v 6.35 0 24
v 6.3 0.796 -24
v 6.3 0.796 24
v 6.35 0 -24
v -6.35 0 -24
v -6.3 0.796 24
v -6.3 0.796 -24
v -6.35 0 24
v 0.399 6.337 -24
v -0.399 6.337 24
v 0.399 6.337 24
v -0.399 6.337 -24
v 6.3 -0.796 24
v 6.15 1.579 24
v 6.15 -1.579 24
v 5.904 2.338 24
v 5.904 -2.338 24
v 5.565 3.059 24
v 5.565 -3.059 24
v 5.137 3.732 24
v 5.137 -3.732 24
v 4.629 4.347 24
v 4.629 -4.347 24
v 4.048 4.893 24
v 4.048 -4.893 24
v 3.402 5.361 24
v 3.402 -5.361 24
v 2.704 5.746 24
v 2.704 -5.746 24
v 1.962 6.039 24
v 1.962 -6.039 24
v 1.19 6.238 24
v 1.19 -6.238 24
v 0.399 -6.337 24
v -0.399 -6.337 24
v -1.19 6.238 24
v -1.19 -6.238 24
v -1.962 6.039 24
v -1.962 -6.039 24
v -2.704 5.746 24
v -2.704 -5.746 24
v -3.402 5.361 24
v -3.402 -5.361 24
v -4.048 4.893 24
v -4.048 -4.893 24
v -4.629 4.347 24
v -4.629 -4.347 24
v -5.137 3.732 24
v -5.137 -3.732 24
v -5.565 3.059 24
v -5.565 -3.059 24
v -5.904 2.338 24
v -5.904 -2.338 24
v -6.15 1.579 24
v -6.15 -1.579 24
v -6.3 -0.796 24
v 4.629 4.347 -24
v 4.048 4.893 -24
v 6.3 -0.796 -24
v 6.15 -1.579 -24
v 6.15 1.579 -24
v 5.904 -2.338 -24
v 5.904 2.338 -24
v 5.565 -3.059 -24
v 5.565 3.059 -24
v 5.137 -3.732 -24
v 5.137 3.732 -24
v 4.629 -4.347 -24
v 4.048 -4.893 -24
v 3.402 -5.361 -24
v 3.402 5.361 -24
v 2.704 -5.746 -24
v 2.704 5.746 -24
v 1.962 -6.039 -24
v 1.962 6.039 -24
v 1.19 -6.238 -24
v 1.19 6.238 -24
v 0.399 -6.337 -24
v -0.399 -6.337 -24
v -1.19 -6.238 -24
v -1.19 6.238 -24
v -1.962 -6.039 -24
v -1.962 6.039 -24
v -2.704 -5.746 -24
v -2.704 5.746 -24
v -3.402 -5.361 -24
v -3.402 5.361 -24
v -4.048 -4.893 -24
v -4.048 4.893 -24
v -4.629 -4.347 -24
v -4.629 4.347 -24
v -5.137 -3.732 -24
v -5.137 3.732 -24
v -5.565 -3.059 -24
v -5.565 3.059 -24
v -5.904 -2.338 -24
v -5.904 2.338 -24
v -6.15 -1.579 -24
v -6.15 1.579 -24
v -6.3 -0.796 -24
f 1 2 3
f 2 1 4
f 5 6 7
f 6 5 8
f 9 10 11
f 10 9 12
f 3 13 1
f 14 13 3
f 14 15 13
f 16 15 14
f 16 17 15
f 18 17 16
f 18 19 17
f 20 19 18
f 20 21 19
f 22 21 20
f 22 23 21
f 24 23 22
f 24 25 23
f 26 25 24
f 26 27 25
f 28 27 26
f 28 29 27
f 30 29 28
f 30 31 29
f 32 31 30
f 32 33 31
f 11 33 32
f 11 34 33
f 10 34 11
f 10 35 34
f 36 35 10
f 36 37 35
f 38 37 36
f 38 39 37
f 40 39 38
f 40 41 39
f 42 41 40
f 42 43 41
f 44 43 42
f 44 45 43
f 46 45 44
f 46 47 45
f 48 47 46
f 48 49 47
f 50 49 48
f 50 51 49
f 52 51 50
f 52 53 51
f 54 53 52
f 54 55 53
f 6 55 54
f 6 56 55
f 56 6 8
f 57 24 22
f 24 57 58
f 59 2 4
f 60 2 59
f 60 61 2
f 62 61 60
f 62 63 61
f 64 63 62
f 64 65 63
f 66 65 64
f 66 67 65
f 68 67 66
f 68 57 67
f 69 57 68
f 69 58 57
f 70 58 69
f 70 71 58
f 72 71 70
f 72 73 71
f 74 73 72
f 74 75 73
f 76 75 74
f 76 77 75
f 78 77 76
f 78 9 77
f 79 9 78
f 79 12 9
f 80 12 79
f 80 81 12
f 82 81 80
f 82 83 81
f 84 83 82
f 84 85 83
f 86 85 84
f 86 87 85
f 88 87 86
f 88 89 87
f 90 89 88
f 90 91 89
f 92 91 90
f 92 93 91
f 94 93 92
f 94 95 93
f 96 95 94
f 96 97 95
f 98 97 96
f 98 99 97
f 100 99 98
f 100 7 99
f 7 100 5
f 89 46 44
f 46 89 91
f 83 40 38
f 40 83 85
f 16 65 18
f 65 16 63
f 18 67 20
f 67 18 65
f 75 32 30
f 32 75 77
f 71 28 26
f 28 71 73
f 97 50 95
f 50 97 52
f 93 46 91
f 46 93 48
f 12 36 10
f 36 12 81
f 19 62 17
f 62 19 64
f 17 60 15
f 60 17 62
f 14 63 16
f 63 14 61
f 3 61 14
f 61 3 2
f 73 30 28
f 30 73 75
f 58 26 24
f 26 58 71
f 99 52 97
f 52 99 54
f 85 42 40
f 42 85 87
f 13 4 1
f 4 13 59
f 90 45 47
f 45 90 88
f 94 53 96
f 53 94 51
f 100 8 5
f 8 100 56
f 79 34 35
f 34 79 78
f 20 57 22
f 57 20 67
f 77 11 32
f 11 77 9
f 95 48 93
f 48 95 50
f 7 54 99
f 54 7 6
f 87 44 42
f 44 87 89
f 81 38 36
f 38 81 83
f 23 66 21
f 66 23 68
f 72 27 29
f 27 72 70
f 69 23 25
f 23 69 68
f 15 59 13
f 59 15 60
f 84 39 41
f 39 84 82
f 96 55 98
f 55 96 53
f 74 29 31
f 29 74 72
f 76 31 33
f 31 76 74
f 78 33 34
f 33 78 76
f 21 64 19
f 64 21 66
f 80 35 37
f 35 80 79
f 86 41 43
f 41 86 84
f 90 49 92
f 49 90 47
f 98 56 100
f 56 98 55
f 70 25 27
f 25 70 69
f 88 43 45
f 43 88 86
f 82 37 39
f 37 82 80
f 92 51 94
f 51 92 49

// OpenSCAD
$fn = 50;


difference() {
	union() {
		translate(v = [0, 0, -24.0000000000]) {
			cylinder(h = 48, r = 6.3500000000);
		}
	}
	union() {
		translate(v = [0, 0, -100.0000000000]) {
			cylinder(h = 200, r = 0);
		}
	}
}
